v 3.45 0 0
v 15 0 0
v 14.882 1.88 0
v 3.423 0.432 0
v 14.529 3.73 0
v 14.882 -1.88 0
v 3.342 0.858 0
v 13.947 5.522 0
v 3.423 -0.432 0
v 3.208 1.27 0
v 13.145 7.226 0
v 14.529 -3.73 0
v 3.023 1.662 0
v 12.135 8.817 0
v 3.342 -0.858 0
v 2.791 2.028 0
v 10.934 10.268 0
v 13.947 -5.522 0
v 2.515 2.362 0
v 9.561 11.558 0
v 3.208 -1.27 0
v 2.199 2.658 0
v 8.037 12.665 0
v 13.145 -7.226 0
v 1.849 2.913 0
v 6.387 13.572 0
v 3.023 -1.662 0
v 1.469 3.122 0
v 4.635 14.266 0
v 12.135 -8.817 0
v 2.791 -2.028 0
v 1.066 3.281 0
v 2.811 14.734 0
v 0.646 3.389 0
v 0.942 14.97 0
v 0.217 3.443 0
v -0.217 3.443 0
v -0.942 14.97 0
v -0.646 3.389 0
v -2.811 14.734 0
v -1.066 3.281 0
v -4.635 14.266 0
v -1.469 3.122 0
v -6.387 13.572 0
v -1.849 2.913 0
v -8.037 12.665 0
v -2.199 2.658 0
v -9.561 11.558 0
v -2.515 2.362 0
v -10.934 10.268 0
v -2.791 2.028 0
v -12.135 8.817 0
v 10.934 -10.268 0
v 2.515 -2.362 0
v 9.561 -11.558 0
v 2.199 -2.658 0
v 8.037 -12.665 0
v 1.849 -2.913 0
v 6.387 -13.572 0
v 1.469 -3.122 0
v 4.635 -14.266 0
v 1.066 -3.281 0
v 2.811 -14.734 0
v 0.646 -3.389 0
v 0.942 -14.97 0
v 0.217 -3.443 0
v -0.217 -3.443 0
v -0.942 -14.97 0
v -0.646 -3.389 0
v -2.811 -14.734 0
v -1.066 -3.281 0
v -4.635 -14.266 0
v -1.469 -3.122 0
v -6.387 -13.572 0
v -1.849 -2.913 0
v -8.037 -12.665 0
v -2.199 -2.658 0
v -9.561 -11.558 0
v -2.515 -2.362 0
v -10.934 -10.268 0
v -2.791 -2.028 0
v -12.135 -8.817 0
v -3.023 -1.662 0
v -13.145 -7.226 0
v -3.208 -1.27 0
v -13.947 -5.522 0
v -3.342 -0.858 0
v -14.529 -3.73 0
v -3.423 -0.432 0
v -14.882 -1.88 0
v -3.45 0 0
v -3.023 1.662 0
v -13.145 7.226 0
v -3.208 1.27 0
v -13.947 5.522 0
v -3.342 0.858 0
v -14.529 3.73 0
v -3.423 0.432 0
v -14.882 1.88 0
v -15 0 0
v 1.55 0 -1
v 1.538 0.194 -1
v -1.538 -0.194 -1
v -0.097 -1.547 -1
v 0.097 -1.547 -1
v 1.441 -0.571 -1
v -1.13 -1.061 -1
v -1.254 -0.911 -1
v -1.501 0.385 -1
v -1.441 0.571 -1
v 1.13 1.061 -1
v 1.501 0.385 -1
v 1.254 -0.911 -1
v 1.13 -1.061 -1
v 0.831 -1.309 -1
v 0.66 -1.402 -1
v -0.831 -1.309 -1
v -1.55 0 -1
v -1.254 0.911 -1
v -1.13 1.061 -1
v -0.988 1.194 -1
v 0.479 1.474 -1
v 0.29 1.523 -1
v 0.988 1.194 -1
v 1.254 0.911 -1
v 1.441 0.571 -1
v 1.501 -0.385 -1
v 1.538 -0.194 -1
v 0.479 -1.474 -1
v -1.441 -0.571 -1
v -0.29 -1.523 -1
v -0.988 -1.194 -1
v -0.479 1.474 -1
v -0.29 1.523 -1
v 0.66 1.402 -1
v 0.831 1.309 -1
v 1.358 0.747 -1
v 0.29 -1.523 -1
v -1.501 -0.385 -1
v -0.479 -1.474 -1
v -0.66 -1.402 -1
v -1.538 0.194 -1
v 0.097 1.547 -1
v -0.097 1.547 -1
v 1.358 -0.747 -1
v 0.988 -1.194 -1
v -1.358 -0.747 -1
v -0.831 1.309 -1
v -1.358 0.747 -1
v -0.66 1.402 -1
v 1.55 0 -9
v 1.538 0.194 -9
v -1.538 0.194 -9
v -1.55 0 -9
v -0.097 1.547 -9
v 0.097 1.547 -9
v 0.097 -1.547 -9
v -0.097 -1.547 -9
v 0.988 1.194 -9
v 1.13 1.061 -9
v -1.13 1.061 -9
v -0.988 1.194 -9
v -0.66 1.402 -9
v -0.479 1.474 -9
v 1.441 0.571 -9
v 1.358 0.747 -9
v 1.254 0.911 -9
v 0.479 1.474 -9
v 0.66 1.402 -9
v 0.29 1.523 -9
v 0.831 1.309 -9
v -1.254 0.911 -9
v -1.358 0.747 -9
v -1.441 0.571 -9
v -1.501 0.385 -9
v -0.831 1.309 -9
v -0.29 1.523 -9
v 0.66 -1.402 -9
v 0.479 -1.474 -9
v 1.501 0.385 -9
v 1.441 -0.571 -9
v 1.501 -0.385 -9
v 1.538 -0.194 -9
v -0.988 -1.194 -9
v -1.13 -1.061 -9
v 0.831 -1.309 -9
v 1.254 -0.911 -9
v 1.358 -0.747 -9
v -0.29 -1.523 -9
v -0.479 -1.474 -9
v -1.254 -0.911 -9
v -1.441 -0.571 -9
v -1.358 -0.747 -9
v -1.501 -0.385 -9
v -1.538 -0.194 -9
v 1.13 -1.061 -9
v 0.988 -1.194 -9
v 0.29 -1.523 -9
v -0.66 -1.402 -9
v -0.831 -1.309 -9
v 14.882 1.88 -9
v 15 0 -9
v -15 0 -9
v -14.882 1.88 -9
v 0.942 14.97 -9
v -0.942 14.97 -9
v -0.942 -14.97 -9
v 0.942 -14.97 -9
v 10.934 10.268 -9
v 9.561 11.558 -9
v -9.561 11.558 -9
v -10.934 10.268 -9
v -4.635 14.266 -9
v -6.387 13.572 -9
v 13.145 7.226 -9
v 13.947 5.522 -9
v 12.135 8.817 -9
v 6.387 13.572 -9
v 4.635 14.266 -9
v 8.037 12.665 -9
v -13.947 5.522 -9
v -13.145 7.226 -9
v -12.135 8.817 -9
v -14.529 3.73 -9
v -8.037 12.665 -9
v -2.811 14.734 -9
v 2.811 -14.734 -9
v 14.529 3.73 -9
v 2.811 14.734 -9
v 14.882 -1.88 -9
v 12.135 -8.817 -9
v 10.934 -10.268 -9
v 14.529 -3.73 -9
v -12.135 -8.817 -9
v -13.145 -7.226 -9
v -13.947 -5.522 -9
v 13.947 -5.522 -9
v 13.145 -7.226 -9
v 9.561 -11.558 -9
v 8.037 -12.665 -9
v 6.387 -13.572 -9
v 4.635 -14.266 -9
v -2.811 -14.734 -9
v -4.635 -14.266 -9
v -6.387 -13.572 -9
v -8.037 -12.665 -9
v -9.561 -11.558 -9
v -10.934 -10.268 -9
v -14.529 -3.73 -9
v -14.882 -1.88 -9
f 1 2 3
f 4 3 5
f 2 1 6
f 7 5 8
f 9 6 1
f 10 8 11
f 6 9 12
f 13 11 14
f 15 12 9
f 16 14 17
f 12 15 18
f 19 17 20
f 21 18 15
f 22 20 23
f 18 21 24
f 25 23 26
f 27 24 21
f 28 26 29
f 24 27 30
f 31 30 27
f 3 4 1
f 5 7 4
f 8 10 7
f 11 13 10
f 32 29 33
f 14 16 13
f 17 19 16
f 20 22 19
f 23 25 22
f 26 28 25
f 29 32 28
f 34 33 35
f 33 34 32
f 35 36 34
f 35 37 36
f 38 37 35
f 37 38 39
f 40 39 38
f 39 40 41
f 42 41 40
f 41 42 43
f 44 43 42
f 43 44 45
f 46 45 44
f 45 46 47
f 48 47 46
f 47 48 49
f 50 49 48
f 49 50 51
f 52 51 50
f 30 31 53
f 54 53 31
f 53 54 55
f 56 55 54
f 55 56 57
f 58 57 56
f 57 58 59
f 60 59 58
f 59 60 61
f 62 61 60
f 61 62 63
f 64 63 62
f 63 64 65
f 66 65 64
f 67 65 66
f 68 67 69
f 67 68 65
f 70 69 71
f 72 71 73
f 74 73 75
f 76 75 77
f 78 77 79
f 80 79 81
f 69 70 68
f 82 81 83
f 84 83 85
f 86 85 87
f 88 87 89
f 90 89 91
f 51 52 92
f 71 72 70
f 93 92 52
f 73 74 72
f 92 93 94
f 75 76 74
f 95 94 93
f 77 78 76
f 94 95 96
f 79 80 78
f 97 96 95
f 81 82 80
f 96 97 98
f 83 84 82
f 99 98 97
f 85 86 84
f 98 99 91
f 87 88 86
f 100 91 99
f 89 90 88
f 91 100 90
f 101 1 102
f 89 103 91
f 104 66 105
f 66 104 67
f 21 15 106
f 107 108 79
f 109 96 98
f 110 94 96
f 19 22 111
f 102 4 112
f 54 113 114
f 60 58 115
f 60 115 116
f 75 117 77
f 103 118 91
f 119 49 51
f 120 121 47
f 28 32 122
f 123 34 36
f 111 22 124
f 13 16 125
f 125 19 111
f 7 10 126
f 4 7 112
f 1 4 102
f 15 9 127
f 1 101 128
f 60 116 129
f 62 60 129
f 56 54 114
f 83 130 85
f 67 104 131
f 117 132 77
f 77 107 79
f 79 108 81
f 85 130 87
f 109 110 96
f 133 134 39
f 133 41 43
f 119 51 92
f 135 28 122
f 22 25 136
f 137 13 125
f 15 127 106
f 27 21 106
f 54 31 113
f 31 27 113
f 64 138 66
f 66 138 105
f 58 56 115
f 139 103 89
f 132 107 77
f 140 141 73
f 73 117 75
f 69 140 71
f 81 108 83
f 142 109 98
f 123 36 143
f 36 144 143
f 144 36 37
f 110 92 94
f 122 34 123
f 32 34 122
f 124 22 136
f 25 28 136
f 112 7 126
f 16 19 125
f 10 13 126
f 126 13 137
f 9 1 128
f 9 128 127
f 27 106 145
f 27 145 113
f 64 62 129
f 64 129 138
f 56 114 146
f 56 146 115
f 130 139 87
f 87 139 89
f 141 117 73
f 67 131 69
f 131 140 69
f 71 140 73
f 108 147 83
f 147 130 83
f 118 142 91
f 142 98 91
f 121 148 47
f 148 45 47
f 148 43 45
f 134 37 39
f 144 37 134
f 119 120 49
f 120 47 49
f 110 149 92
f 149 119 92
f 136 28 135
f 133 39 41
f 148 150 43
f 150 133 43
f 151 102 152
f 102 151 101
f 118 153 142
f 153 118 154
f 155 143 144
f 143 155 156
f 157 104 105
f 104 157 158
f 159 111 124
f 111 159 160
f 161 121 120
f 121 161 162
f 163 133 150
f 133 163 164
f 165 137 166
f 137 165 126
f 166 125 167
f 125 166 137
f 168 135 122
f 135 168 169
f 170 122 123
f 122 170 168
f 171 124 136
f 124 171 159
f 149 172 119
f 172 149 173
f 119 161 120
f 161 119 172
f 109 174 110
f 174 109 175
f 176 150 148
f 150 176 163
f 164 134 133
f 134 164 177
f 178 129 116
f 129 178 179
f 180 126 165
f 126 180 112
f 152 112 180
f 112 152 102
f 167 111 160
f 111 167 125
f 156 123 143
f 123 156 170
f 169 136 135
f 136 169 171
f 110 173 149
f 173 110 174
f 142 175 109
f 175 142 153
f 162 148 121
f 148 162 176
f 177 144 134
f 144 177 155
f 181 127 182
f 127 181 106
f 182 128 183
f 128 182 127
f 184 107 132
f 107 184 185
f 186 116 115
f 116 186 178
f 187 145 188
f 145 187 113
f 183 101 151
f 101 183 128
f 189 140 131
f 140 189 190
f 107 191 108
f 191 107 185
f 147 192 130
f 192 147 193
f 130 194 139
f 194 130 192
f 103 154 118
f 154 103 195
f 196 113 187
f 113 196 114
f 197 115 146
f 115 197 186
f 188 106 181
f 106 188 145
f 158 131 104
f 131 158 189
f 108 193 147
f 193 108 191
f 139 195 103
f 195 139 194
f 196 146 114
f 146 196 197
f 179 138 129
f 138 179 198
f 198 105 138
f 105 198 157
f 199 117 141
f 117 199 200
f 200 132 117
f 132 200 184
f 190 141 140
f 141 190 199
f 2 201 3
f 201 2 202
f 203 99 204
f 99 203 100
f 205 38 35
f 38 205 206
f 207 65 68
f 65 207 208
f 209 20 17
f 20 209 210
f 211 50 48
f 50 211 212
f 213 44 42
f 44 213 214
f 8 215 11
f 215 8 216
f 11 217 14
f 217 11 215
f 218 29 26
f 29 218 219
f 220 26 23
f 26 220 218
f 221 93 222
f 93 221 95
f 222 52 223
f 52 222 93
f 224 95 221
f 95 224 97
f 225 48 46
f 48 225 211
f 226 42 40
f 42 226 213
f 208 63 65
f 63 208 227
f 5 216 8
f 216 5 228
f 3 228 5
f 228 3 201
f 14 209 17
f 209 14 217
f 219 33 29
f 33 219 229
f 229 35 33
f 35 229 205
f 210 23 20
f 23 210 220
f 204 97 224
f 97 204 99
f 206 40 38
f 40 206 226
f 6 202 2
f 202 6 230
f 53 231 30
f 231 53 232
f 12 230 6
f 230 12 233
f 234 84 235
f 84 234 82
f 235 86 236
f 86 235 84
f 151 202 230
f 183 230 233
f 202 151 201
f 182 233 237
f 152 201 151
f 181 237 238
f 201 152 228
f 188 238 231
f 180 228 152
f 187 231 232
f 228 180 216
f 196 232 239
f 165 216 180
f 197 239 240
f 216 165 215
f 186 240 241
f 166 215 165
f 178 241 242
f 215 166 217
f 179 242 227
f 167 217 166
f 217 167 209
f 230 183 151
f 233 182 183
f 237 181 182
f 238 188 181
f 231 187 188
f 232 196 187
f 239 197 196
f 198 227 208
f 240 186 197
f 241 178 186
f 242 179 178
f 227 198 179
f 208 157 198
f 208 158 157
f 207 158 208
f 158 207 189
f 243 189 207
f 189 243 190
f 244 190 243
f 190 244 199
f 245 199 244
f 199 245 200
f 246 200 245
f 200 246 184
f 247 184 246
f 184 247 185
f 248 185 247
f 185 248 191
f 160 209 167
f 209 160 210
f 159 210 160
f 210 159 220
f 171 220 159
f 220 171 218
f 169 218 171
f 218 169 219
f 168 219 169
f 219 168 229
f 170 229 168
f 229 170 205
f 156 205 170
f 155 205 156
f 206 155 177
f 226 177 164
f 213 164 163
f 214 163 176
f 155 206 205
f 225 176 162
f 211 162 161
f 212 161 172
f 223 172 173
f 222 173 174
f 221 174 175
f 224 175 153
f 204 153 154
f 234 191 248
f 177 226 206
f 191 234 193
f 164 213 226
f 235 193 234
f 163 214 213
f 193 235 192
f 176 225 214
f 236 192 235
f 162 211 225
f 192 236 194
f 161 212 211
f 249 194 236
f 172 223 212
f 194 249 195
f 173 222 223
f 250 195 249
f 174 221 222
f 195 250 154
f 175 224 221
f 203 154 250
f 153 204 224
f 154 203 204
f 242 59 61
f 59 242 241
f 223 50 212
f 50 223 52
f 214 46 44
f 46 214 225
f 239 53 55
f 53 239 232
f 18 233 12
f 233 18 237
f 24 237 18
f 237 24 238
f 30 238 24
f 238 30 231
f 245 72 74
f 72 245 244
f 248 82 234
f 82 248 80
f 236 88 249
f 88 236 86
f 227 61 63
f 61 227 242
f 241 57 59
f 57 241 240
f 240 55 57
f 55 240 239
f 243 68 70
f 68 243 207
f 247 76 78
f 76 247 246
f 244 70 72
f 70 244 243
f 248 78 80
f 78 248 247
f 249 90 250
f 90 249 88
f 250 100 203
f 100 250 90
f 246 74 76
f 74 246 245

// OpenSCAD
$fn = 50;


difference() {
	union() {
		translate(v = [0, 0, -9.0000000000]) {
			cylinder(h = 9, r = 15.0000000000);
		}
	}
	union() {
		translate(v = [0, 0, 0]) {
			rotate(a = [0, 0, 0]) {
				difference() {
					union() {
						translate(v = [0, 0, -12.0000000000]) {
							cylinder(h = 12, r = 1.2500000000);
						}
						translate(v = [0, 0, -1.0000000000]) {
							cylinder(h = 1.0000000000, r1 = 1.5500000000, r2 = 3.4500000000);
						}
						translate(v = [0, 0, -12.0000000000]) {
							cylinder(h = 12, r = 1.5500000000);
						}
						translate(v = [0, 0, -12.0000000000]) {
							cylinder(h = 12, r = 1.2500000000);
						}
					}
					union();
				}
			}
		}
	}
}
